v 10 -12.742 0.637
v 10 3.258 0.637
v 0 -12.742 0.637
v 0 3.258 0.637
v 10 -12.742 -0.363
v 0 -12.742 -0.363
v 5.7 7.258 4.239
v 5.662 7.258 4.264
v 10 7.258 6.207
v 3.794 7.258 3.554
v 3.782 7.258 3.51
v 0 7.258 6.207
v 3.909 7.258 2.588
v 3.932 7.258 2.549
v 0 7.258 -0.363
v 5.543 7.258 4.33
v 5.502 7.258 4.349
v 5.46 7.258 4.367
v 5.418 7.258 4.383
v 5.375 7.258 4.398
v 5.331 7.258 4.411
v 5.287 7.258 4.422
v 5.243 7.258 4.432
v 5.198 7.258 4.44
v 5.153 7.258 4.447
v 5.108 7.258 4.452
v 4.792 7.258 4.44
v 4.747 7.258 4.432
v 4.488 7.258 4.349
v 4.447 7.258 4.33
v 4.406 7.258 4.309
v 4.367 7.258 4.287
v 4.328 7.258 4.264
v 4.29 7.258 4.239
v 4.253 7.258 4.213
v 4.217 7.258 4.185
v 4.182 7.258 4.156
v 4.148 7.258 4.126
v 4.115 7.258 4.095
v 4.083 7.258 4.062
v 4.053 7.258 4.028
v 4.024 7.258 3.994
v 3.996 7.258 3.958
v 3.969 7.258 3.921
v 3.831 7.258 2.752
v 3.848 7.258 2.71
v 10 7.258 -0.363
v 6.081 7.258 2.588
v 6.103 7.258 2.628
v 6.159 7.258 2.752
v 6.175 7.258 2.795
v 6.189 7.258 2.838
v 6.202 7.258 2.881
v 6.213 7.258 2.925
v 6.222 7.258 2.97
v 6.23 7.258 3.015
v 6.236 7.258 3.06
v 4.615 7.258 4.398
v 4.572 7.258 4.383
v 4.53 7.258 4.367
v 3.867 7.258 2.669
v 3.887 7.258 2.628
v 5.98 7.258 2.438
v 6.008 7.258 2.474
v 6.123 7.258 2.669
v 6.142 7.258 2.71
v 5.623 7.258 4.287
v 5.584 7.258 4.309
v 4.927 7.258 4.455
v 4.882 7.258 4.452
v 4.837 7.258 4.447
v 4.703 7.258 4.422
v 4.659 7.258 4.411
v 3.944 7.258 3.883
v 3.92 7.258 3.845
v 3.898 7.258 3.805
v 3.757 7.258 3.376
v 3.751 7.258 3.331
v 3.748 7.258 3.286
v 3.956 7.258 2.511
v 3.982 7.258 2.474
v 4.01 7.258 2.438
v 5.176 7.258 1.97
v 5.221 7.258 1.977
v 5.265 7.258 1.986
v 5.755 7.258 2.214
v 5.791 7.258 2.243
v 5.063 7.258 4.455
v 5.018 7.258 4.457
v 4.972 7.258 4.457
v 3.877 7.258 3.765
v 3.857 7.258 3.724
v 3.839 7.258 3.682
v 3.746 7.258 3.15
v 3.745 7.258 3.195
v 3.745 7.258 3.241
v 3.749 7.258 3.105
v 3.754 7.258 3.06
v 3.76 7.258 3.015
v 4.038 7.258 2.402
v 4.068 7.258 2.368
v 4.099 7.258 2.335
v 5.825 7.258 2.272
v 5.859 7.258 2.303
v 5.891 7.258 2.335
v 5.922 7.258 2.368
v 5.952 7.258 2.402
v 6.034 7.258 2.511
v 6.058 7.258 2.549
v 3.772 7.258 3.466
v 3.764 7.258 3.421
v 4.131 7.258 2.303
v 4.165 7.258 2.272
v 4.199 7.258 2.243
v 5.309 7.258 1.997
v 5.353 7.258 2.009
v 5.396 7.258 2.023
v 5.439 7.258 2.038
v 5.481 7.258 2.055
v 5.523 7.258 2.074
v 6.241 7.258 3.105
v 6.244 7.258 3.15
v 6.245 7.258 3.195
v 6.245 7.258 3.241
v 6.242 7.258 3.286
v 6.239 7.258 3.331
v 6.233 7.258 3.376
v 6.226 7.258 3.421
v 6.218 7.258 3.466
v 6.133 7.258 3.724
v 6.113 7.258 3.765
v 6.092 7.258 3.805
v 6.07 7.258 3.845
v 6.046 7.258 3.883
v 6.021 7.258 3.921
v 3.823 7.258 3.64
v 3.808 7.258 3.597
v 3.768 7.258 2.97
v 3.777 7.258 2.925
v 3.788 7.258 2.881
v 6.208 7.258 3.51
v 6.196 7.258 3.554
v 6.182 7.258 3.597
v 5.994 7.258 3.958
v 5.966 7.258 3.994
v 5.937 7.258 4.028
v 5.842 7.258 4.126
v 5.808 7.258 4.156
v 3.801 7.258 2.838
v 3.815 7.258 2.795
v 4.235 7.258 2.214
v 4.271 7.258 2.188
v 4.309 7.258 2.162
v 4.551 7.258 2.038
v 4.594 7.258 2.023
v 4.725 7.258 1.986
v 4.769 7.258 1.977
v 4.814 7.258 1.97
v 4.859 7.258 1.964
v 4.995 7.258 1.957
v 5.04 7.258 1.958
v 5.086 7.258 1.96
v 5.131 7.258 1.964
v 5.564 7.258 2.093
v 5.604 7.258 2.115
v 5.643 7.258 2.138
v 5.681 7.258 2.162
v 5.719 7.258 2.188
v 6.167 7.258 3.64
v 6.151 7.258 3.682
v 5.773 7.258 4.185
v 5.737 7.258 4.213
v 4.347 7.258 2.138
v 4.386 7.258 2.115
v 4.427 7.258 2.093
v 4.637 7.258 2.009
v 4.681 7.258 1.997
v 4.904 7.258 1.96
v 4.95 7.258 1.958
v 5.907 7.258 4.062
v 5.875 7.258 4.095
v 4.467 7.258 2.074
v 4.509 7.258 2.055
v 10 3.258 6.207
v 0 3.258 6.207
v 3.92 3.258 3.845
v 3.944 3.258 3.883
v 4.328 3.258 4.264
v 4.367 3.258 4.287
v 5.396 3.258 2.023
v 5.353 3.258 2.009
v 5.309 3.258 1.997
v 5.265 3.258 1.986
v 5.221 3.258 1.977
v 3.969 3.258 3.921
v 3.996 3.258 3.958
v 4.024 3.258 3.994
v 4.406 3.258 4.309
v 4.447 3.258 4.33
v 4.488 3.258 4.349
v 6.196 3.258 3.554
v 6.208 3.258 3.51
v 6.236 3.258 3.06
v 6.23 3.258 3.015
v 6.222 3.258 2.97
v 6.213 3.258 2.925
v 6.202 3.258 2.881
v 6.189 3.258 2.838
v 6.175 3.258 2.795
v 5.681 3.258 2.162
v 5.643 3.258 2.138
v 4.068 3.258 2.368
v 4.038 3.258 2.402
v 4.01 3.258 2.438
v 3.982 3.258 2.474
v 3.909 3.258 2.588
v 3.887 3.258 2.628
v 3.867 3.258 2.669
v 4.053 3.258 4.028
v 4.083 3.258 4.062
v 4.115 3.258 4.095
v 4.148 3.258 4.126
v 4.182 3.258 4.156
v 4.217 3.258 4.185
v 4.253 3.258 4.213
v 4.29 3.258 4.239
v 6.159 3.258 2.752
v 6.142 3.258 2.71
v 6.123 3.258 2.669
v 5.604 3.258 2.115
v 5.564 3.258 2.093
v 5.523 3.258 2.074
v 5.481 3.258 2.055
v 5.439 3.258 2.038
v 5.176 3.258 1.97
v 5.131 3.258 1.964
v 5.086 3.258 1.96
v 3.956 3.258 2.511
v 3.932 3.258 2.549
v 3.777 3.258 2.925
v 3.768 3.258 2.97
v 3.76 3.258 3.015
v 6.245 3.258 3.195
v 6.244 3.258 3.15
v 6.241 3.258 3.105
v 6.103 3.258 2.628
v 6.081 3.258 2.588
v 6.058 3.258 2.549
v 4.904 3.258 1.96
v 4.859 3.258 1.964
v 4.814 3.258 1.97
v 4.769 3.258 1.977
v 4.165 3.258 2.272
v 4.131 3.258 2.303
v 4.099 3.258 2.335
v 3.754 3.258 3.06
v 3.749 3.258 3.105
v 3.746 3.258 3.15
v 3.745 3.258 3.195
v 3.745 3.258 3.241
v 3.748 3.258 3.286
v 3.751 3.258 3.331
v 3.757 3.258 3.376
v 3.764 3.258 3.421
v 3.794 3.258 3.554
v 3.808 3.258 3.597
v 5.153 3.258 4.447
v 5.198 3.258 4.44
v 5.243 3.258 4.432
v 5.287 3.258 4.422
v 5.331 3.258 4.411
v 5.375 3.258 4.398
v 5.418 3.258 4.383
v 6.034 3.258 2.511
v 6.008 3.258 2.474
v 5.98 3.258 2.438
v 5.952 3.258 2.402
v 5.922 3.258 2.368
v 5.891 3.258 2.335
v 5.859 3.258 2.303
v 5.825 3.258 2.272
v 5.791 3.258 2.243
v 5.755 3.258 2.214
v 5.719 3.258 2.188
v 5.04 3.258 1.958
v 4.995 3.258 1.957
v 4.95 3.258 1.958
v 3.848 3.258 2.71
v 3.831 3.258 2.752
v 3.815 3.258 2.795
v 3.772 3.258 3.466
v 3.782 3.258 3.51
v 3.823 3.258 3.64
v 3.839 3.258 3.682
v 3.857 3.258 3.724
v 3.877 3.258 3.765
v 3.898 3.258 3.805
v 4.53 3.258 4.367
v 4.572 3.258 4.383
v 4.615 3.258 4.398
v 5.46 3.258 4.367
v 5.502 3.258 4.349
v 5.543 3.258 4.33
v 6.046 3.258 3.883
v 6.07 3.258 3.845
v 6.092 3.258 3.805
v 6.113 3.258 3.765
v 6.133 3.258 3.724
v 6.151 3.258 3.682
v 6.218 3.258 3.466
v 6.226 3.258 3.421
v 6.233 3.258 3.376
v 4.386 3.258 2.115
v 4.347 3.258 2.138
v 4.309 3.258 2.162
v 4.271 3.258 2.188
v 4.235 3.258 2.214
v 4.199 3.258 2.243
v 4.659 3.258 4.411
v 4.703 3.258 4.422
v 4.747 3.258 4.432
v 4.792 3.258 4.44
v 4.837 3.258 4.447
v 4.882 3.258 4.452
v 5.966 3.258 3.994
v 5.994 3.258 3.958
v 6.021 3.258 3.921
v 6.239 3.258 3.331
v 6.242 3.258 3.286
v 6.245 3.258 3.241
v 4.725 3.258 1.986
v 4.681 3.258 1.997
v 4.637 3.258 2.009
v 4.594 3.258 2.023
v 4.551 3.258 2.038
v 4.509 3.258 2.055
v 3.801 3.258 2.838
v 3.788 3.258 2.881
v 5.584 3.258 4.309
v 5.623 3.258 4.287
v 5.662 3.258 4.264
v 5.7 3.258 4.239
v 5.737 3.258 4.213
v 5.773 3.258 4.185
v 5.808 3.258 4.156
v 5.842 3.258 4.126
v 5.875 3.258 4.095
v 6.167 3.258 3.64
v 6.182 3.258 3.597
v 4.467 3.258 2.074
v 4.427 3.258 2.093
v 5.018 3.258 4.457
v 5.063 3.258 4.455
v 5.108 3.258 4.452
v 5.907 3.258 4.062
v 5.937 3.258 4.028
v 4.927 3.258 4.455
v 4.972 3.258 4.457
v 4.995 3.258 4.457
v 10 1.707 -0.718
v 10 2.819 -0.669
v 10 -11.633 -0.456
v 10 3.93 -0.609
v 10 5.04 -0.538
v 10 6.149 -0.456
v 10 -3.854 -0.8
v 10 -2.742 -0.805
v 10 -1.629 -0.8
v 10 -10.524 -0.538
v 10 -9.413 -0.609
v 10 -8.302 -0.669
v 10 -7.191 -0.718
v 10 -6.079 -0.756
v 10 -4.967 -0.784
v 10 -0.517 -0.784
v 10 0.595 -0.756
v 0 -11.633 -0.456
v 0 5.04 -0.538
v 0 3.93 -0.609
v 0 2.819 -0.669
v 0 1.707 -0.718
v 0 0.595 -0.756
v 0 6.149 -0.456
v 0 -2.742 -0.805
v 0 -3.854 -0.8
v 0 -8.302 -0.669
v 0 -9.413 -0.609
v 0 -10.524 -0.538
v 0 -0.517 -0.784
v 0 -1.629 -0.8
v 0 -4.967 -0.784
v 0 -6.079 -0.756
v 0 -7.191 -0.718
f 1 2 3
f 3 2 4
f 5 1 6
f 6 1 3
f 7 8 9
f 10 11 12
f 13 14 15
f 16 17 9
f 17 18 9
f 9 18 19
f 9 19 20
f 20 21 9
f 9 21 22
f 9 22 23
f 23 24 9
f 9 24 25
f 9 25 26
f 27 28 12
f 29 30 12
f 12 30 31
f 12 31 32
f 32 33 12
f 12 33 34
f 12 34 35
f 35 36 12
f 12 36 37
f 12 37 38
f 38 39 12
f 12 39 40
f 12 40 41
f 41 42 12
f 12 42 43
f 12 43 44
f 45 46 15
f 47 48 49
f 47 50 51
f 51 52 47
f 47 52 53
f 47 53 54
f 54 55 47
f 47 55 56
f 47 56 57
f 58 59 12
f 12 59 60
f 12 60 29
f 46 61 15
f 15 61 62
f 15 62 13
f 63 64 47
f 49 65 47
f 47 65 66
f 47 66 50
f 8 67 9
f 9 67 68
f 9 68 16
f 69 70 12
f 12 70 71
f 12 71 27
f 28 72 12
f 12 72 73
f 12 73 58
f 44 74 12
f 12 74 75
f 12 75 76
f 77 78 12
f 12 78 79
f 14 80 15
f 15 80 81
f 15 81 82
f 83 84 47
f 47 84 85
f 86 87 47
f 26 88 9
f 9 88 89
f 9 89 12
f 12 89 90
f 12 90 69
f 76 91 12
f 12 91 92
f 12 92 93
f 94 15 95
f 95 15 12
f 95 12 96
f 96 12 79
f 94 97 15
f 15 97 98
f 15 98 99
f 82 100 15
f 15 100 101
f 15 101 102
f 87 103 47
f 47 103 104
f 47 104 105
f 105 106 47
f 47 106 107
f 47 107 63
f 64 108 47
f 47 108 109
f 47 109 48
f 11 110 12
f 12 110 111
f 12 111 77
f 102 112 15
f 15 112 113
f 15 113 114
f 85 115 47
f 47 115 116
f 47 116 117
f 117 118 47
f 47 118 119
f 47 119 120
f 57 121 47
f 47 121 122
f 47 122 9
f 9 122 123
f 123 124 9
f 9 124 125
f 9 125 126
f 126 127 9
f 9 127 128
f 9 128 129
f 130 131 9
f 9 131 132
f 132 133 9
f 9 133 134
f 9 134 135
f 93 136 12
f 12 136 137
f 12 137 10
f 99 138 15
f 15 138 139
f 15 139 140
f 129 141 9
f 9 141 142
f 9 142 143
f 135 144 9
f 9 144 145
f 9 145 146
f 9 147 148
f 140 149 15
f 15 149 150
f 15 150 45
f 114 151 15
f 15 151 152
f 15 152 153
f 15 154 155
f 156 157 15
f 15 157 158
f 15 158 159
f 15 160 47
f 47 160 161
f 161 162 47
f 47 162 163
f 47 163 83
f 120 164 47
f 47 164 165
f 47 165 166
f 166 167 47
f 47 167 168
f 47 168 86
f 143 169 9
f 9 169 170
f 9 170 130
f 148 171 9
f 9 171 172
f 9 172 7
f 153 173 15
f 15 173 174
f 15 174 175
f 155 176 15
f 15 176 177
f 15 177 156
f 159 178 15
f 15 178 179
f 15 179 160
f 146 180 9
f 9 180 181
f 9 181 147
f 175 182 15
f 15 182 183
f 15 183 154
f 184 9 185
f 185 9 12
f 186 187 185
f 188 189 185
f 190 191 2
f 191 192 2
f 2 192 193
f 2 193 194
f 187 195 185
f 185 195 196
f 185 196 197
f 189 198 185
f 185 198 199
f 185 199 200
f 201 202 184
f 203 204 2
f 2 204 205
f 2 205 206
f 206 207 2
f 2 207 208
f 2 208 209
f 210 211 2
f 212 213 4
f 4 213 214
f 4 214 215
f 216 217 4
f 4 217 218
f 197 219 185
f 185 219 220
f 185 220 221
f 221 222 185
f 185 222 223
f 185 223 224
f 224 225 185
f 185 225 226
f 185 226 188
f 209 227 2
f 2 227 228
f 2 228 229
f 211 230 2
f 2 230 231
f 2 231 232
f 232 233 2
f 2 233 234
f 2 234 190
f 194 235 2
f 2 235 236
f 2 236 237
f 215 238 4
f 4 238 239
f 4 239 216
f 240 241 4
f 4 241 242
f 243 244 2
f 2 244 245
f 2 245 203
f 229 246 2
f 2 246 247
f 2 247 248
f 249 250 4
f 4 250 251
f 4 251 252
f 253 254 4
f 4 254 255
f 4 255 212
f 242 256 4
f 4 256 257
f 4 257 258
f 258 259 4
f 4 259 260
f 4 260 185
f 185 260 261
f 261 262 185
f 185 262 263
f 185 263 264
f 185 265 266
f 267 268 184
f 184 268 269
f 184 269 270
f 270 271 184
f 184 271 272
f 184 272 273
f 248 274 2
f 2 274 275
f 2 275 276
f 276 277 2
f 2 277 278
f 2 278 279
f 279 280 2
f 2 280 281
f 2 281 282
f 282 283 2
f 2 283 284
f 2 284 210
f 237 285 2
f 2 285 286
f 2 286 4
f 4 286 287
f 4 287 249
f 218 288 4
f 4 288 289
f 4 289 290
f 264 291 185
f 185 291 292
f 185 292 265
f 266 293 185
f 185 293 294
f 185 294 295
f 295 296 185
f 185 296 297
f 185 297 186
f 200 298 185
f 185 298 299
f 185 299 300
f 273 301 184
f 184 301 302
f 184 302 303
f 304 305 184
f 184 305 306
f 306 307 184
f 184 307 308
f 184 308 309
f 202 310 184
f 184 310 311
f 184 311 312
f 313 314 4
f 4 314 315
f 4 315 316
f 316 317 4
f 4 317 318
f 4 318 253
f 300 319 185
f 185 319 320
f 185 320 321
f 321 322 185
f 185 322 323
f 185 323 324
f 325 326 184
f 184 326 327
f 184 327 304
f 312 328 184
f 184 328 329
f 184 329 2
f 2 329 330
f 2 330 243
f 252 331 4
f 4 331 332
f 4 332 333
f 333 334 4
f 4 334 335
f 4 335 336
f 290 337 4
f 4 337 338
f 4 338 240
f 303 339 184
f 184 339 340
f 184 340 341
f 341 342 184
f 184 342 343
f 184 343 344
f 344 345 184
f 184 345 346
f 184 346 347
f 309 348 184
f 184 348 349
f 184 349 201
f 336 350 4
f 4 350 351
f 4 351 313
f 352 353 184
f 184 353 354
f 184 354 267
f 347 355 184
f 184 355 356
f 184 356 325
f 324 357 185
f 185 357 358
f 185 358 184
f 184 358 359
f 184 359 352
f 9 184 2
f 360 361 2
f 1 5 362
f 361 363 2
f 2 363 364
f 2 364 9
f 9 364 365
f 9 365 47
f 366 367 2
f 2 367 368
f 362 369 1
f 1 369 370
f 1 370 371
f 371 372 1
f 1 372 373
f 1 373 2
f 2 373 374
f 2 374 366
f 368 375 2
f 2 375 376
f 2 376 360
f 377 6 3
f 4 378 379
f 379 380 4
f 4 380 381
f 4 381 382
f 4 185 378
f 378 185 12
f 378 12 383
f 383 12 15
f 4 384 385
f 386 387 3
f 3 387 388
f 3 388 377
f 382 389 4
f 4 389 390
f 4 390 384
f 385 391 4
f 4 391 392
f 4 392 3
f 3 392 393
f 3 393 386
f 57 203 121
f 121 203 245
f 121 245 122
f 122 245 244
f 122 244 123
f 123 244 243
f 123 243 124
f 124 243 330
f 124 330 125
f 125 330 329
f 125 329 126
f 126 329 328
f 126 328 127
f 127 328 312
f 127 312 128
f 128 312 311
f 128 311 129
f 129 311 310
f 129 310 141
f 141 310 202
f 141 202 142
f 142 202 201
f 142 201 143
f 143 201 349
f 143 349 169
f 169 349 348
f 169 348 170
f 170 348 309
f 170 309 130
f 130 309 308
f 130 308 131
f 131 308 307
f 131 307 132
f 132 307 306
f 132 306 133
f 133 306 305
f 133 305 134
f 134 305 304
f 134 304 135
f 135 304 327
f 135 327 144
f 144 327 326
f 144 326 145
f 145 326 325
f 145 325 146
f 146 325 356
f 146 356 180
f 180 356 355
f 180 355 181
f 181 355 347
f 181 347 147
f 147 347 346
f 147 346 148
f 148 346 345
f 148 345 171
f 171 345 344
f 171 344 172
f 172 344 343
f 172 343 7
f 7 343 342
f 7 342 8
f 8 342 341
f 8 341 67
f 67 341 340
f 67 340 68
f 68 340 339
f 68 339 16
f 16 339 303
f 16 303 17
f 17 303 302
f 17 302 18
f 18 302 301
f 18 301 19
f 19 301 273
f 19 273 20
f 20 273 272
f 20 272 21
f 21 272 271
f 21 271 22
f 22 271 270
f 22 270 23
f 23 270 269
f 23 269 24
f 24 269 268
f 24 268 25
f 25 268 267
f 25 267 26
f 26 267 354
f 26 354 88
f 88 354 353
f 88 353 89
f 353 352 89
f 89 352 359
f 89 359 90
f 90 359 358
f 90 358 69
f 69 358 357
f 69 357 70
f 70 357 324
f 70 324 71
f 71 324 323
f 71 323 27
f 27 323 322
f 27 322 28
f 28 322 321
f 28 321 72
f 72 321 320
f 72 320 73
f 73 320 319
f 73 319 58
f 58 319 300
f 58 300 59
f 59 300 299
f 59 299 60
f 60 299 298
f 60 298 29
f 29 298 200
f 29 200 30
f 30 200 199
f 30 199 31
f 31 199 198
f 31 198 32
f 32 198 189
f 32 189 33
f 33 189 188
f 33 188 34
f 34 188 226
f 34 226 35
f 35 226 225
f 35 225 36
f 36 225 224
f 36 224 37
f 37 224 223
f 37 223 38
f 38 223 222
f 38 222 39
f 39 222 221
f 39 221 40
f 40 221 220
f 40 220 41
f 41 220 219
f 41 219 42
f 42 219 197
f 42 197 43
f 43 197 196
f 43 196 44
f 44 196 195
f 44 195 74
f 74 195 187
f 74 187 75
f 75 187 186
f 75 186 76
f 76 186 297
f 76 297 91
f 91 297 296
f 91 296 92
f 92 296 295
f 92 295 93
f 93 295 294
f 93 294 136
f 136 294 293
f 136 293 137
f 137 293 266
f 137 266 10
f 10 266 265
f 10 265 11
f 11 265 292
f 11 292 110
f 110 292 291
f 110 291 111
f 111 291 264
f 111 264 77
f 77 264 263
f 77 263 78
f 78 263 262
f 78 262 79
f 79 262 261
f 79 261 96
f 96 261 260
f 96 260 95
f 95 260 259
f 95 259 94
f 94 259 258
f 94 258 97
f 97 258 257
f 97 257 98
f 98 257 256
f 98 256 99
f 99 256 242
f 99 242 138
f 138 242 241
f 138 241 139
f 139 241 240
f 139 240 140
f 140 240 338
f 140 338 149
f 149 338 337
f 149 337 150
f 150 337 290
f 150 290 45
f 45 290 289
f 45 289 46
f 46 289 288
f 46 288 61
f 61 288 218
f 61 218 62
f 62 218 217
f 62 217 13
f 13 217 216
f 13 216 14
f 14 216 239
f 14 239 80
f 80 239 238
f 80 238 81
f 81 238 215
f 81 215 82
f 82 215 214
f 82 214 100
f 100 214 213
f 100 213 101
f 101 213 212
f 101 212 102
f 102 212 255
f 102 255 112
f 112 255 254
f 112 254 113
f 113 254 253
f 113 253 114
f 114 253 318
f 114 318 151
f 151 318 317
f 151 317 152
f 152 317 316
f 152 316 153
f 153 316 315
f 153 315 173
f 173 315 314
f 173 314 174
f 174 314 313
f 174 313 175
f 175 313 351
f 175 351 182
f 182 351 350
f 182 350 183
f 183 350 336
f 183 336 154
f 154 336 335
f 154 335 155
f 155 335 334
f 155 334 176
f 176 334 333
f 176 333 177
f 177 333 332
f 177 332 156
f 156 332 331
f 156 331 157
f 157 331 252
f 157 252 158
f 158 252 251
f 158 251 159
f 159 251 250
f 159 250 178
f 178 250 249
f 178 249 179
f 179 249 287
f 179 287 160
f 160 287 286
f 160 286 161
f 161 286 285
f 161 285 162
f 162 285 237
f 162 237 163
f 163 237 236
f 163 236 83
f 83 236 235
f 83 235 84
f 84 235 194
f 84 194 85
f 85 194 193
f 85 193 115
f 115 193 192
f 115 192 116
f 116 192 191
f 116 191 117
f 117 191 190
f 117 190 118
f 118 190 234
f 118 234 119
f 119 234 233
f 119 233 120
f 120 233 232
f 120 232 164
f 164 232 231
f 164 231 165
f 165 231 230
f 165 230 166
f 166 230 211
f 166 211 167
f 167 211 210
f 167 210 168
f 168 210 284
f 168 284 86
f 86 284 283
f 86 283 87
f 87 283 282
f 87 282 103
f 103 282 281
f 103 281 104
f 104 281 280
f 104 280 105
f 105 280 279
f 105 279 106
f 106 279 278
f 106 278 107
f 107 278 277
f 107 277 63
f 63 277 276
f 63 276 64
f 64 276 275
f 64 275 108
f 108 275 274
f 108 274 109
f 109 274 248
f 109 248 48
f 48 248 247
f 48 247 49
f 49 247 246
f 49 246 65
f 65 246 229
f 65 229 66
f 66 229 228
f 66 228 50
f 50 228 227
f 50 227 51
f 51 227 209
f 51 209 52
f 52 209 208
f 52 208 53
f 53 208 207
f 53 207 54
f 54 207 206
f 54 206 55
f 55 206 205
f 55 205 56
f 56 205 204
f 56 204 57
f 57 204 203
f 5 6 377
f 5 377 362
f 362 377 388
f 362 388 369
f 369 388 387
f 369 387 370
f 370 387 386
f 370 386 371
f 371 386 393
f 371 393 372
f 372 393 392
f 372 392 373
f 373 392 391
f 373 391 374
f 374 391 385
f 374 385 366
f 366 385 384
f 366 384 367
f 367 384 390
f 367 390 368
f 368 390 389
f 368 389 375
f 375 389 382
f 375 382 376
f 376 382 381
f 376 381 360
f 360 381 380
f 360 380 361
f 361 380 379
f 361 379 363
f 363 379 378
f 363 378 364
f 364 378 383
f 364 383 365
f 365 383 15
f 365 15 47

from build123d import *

# Parameters (mm, degrees)
BOSS_EXTRUDE1_DEPTH = 10
SKETCH2_R           = 1.25
CUT_EXTRUDE1_DEPTH  = 4
BOSS_EXTRUDE4_DEPTH = 10


with BuildPart() as part:
    # Sketch1 → Boss-Extrude1 (new body)
    with BuildSketch(Plane(origin=(0, 0, 0), x_dir=(0, 0, -1), z_dir=(1, 0, 0))):
        Polygon((0.362907695, 7.258153898), (-0.206723569, 7.258153898), (-6.206723569, 7.258153898), (-6.206723569, 3.258153898), (-0.637092305, 3.258153898), (-0.637092305, -12.741846102), (0.362907695, -12.741846102), align=None)
    extrude(amount=BOSS_EXTRUDE1_DEPTH)

    # Sketch2 → Cut-Extrude1 (cut)
    with BuildSketch(Plane(origin=(0, 3.258153898, 0), x_dir=(1, 0, 0), z_dir=(0, 1, 0))):
        with Locations((4.995009197, -3.206723569)):
            Circle(SKETCH2_R)
    extrude(amount=CUT_EXTRUDE1_DEPTH, mode=Mode.SUBTRACT)

    # Sketch5 → Boss-Extrude4 (add)
    with BuildSketch(Plane.ZY):
        with BuildLine():
            Line((-0.362907695, -12.741846102), (-0.362907695, 7.258153898))
            ThreePointArc((-0.362907695, 7.258153898), (-0.805423884, -2.741846102), (-0.362907695, -12.741846102))
        make_face()
    extrude(amount=-BOSS_EXTRUDE4_DEPTH)


solid = part.part
